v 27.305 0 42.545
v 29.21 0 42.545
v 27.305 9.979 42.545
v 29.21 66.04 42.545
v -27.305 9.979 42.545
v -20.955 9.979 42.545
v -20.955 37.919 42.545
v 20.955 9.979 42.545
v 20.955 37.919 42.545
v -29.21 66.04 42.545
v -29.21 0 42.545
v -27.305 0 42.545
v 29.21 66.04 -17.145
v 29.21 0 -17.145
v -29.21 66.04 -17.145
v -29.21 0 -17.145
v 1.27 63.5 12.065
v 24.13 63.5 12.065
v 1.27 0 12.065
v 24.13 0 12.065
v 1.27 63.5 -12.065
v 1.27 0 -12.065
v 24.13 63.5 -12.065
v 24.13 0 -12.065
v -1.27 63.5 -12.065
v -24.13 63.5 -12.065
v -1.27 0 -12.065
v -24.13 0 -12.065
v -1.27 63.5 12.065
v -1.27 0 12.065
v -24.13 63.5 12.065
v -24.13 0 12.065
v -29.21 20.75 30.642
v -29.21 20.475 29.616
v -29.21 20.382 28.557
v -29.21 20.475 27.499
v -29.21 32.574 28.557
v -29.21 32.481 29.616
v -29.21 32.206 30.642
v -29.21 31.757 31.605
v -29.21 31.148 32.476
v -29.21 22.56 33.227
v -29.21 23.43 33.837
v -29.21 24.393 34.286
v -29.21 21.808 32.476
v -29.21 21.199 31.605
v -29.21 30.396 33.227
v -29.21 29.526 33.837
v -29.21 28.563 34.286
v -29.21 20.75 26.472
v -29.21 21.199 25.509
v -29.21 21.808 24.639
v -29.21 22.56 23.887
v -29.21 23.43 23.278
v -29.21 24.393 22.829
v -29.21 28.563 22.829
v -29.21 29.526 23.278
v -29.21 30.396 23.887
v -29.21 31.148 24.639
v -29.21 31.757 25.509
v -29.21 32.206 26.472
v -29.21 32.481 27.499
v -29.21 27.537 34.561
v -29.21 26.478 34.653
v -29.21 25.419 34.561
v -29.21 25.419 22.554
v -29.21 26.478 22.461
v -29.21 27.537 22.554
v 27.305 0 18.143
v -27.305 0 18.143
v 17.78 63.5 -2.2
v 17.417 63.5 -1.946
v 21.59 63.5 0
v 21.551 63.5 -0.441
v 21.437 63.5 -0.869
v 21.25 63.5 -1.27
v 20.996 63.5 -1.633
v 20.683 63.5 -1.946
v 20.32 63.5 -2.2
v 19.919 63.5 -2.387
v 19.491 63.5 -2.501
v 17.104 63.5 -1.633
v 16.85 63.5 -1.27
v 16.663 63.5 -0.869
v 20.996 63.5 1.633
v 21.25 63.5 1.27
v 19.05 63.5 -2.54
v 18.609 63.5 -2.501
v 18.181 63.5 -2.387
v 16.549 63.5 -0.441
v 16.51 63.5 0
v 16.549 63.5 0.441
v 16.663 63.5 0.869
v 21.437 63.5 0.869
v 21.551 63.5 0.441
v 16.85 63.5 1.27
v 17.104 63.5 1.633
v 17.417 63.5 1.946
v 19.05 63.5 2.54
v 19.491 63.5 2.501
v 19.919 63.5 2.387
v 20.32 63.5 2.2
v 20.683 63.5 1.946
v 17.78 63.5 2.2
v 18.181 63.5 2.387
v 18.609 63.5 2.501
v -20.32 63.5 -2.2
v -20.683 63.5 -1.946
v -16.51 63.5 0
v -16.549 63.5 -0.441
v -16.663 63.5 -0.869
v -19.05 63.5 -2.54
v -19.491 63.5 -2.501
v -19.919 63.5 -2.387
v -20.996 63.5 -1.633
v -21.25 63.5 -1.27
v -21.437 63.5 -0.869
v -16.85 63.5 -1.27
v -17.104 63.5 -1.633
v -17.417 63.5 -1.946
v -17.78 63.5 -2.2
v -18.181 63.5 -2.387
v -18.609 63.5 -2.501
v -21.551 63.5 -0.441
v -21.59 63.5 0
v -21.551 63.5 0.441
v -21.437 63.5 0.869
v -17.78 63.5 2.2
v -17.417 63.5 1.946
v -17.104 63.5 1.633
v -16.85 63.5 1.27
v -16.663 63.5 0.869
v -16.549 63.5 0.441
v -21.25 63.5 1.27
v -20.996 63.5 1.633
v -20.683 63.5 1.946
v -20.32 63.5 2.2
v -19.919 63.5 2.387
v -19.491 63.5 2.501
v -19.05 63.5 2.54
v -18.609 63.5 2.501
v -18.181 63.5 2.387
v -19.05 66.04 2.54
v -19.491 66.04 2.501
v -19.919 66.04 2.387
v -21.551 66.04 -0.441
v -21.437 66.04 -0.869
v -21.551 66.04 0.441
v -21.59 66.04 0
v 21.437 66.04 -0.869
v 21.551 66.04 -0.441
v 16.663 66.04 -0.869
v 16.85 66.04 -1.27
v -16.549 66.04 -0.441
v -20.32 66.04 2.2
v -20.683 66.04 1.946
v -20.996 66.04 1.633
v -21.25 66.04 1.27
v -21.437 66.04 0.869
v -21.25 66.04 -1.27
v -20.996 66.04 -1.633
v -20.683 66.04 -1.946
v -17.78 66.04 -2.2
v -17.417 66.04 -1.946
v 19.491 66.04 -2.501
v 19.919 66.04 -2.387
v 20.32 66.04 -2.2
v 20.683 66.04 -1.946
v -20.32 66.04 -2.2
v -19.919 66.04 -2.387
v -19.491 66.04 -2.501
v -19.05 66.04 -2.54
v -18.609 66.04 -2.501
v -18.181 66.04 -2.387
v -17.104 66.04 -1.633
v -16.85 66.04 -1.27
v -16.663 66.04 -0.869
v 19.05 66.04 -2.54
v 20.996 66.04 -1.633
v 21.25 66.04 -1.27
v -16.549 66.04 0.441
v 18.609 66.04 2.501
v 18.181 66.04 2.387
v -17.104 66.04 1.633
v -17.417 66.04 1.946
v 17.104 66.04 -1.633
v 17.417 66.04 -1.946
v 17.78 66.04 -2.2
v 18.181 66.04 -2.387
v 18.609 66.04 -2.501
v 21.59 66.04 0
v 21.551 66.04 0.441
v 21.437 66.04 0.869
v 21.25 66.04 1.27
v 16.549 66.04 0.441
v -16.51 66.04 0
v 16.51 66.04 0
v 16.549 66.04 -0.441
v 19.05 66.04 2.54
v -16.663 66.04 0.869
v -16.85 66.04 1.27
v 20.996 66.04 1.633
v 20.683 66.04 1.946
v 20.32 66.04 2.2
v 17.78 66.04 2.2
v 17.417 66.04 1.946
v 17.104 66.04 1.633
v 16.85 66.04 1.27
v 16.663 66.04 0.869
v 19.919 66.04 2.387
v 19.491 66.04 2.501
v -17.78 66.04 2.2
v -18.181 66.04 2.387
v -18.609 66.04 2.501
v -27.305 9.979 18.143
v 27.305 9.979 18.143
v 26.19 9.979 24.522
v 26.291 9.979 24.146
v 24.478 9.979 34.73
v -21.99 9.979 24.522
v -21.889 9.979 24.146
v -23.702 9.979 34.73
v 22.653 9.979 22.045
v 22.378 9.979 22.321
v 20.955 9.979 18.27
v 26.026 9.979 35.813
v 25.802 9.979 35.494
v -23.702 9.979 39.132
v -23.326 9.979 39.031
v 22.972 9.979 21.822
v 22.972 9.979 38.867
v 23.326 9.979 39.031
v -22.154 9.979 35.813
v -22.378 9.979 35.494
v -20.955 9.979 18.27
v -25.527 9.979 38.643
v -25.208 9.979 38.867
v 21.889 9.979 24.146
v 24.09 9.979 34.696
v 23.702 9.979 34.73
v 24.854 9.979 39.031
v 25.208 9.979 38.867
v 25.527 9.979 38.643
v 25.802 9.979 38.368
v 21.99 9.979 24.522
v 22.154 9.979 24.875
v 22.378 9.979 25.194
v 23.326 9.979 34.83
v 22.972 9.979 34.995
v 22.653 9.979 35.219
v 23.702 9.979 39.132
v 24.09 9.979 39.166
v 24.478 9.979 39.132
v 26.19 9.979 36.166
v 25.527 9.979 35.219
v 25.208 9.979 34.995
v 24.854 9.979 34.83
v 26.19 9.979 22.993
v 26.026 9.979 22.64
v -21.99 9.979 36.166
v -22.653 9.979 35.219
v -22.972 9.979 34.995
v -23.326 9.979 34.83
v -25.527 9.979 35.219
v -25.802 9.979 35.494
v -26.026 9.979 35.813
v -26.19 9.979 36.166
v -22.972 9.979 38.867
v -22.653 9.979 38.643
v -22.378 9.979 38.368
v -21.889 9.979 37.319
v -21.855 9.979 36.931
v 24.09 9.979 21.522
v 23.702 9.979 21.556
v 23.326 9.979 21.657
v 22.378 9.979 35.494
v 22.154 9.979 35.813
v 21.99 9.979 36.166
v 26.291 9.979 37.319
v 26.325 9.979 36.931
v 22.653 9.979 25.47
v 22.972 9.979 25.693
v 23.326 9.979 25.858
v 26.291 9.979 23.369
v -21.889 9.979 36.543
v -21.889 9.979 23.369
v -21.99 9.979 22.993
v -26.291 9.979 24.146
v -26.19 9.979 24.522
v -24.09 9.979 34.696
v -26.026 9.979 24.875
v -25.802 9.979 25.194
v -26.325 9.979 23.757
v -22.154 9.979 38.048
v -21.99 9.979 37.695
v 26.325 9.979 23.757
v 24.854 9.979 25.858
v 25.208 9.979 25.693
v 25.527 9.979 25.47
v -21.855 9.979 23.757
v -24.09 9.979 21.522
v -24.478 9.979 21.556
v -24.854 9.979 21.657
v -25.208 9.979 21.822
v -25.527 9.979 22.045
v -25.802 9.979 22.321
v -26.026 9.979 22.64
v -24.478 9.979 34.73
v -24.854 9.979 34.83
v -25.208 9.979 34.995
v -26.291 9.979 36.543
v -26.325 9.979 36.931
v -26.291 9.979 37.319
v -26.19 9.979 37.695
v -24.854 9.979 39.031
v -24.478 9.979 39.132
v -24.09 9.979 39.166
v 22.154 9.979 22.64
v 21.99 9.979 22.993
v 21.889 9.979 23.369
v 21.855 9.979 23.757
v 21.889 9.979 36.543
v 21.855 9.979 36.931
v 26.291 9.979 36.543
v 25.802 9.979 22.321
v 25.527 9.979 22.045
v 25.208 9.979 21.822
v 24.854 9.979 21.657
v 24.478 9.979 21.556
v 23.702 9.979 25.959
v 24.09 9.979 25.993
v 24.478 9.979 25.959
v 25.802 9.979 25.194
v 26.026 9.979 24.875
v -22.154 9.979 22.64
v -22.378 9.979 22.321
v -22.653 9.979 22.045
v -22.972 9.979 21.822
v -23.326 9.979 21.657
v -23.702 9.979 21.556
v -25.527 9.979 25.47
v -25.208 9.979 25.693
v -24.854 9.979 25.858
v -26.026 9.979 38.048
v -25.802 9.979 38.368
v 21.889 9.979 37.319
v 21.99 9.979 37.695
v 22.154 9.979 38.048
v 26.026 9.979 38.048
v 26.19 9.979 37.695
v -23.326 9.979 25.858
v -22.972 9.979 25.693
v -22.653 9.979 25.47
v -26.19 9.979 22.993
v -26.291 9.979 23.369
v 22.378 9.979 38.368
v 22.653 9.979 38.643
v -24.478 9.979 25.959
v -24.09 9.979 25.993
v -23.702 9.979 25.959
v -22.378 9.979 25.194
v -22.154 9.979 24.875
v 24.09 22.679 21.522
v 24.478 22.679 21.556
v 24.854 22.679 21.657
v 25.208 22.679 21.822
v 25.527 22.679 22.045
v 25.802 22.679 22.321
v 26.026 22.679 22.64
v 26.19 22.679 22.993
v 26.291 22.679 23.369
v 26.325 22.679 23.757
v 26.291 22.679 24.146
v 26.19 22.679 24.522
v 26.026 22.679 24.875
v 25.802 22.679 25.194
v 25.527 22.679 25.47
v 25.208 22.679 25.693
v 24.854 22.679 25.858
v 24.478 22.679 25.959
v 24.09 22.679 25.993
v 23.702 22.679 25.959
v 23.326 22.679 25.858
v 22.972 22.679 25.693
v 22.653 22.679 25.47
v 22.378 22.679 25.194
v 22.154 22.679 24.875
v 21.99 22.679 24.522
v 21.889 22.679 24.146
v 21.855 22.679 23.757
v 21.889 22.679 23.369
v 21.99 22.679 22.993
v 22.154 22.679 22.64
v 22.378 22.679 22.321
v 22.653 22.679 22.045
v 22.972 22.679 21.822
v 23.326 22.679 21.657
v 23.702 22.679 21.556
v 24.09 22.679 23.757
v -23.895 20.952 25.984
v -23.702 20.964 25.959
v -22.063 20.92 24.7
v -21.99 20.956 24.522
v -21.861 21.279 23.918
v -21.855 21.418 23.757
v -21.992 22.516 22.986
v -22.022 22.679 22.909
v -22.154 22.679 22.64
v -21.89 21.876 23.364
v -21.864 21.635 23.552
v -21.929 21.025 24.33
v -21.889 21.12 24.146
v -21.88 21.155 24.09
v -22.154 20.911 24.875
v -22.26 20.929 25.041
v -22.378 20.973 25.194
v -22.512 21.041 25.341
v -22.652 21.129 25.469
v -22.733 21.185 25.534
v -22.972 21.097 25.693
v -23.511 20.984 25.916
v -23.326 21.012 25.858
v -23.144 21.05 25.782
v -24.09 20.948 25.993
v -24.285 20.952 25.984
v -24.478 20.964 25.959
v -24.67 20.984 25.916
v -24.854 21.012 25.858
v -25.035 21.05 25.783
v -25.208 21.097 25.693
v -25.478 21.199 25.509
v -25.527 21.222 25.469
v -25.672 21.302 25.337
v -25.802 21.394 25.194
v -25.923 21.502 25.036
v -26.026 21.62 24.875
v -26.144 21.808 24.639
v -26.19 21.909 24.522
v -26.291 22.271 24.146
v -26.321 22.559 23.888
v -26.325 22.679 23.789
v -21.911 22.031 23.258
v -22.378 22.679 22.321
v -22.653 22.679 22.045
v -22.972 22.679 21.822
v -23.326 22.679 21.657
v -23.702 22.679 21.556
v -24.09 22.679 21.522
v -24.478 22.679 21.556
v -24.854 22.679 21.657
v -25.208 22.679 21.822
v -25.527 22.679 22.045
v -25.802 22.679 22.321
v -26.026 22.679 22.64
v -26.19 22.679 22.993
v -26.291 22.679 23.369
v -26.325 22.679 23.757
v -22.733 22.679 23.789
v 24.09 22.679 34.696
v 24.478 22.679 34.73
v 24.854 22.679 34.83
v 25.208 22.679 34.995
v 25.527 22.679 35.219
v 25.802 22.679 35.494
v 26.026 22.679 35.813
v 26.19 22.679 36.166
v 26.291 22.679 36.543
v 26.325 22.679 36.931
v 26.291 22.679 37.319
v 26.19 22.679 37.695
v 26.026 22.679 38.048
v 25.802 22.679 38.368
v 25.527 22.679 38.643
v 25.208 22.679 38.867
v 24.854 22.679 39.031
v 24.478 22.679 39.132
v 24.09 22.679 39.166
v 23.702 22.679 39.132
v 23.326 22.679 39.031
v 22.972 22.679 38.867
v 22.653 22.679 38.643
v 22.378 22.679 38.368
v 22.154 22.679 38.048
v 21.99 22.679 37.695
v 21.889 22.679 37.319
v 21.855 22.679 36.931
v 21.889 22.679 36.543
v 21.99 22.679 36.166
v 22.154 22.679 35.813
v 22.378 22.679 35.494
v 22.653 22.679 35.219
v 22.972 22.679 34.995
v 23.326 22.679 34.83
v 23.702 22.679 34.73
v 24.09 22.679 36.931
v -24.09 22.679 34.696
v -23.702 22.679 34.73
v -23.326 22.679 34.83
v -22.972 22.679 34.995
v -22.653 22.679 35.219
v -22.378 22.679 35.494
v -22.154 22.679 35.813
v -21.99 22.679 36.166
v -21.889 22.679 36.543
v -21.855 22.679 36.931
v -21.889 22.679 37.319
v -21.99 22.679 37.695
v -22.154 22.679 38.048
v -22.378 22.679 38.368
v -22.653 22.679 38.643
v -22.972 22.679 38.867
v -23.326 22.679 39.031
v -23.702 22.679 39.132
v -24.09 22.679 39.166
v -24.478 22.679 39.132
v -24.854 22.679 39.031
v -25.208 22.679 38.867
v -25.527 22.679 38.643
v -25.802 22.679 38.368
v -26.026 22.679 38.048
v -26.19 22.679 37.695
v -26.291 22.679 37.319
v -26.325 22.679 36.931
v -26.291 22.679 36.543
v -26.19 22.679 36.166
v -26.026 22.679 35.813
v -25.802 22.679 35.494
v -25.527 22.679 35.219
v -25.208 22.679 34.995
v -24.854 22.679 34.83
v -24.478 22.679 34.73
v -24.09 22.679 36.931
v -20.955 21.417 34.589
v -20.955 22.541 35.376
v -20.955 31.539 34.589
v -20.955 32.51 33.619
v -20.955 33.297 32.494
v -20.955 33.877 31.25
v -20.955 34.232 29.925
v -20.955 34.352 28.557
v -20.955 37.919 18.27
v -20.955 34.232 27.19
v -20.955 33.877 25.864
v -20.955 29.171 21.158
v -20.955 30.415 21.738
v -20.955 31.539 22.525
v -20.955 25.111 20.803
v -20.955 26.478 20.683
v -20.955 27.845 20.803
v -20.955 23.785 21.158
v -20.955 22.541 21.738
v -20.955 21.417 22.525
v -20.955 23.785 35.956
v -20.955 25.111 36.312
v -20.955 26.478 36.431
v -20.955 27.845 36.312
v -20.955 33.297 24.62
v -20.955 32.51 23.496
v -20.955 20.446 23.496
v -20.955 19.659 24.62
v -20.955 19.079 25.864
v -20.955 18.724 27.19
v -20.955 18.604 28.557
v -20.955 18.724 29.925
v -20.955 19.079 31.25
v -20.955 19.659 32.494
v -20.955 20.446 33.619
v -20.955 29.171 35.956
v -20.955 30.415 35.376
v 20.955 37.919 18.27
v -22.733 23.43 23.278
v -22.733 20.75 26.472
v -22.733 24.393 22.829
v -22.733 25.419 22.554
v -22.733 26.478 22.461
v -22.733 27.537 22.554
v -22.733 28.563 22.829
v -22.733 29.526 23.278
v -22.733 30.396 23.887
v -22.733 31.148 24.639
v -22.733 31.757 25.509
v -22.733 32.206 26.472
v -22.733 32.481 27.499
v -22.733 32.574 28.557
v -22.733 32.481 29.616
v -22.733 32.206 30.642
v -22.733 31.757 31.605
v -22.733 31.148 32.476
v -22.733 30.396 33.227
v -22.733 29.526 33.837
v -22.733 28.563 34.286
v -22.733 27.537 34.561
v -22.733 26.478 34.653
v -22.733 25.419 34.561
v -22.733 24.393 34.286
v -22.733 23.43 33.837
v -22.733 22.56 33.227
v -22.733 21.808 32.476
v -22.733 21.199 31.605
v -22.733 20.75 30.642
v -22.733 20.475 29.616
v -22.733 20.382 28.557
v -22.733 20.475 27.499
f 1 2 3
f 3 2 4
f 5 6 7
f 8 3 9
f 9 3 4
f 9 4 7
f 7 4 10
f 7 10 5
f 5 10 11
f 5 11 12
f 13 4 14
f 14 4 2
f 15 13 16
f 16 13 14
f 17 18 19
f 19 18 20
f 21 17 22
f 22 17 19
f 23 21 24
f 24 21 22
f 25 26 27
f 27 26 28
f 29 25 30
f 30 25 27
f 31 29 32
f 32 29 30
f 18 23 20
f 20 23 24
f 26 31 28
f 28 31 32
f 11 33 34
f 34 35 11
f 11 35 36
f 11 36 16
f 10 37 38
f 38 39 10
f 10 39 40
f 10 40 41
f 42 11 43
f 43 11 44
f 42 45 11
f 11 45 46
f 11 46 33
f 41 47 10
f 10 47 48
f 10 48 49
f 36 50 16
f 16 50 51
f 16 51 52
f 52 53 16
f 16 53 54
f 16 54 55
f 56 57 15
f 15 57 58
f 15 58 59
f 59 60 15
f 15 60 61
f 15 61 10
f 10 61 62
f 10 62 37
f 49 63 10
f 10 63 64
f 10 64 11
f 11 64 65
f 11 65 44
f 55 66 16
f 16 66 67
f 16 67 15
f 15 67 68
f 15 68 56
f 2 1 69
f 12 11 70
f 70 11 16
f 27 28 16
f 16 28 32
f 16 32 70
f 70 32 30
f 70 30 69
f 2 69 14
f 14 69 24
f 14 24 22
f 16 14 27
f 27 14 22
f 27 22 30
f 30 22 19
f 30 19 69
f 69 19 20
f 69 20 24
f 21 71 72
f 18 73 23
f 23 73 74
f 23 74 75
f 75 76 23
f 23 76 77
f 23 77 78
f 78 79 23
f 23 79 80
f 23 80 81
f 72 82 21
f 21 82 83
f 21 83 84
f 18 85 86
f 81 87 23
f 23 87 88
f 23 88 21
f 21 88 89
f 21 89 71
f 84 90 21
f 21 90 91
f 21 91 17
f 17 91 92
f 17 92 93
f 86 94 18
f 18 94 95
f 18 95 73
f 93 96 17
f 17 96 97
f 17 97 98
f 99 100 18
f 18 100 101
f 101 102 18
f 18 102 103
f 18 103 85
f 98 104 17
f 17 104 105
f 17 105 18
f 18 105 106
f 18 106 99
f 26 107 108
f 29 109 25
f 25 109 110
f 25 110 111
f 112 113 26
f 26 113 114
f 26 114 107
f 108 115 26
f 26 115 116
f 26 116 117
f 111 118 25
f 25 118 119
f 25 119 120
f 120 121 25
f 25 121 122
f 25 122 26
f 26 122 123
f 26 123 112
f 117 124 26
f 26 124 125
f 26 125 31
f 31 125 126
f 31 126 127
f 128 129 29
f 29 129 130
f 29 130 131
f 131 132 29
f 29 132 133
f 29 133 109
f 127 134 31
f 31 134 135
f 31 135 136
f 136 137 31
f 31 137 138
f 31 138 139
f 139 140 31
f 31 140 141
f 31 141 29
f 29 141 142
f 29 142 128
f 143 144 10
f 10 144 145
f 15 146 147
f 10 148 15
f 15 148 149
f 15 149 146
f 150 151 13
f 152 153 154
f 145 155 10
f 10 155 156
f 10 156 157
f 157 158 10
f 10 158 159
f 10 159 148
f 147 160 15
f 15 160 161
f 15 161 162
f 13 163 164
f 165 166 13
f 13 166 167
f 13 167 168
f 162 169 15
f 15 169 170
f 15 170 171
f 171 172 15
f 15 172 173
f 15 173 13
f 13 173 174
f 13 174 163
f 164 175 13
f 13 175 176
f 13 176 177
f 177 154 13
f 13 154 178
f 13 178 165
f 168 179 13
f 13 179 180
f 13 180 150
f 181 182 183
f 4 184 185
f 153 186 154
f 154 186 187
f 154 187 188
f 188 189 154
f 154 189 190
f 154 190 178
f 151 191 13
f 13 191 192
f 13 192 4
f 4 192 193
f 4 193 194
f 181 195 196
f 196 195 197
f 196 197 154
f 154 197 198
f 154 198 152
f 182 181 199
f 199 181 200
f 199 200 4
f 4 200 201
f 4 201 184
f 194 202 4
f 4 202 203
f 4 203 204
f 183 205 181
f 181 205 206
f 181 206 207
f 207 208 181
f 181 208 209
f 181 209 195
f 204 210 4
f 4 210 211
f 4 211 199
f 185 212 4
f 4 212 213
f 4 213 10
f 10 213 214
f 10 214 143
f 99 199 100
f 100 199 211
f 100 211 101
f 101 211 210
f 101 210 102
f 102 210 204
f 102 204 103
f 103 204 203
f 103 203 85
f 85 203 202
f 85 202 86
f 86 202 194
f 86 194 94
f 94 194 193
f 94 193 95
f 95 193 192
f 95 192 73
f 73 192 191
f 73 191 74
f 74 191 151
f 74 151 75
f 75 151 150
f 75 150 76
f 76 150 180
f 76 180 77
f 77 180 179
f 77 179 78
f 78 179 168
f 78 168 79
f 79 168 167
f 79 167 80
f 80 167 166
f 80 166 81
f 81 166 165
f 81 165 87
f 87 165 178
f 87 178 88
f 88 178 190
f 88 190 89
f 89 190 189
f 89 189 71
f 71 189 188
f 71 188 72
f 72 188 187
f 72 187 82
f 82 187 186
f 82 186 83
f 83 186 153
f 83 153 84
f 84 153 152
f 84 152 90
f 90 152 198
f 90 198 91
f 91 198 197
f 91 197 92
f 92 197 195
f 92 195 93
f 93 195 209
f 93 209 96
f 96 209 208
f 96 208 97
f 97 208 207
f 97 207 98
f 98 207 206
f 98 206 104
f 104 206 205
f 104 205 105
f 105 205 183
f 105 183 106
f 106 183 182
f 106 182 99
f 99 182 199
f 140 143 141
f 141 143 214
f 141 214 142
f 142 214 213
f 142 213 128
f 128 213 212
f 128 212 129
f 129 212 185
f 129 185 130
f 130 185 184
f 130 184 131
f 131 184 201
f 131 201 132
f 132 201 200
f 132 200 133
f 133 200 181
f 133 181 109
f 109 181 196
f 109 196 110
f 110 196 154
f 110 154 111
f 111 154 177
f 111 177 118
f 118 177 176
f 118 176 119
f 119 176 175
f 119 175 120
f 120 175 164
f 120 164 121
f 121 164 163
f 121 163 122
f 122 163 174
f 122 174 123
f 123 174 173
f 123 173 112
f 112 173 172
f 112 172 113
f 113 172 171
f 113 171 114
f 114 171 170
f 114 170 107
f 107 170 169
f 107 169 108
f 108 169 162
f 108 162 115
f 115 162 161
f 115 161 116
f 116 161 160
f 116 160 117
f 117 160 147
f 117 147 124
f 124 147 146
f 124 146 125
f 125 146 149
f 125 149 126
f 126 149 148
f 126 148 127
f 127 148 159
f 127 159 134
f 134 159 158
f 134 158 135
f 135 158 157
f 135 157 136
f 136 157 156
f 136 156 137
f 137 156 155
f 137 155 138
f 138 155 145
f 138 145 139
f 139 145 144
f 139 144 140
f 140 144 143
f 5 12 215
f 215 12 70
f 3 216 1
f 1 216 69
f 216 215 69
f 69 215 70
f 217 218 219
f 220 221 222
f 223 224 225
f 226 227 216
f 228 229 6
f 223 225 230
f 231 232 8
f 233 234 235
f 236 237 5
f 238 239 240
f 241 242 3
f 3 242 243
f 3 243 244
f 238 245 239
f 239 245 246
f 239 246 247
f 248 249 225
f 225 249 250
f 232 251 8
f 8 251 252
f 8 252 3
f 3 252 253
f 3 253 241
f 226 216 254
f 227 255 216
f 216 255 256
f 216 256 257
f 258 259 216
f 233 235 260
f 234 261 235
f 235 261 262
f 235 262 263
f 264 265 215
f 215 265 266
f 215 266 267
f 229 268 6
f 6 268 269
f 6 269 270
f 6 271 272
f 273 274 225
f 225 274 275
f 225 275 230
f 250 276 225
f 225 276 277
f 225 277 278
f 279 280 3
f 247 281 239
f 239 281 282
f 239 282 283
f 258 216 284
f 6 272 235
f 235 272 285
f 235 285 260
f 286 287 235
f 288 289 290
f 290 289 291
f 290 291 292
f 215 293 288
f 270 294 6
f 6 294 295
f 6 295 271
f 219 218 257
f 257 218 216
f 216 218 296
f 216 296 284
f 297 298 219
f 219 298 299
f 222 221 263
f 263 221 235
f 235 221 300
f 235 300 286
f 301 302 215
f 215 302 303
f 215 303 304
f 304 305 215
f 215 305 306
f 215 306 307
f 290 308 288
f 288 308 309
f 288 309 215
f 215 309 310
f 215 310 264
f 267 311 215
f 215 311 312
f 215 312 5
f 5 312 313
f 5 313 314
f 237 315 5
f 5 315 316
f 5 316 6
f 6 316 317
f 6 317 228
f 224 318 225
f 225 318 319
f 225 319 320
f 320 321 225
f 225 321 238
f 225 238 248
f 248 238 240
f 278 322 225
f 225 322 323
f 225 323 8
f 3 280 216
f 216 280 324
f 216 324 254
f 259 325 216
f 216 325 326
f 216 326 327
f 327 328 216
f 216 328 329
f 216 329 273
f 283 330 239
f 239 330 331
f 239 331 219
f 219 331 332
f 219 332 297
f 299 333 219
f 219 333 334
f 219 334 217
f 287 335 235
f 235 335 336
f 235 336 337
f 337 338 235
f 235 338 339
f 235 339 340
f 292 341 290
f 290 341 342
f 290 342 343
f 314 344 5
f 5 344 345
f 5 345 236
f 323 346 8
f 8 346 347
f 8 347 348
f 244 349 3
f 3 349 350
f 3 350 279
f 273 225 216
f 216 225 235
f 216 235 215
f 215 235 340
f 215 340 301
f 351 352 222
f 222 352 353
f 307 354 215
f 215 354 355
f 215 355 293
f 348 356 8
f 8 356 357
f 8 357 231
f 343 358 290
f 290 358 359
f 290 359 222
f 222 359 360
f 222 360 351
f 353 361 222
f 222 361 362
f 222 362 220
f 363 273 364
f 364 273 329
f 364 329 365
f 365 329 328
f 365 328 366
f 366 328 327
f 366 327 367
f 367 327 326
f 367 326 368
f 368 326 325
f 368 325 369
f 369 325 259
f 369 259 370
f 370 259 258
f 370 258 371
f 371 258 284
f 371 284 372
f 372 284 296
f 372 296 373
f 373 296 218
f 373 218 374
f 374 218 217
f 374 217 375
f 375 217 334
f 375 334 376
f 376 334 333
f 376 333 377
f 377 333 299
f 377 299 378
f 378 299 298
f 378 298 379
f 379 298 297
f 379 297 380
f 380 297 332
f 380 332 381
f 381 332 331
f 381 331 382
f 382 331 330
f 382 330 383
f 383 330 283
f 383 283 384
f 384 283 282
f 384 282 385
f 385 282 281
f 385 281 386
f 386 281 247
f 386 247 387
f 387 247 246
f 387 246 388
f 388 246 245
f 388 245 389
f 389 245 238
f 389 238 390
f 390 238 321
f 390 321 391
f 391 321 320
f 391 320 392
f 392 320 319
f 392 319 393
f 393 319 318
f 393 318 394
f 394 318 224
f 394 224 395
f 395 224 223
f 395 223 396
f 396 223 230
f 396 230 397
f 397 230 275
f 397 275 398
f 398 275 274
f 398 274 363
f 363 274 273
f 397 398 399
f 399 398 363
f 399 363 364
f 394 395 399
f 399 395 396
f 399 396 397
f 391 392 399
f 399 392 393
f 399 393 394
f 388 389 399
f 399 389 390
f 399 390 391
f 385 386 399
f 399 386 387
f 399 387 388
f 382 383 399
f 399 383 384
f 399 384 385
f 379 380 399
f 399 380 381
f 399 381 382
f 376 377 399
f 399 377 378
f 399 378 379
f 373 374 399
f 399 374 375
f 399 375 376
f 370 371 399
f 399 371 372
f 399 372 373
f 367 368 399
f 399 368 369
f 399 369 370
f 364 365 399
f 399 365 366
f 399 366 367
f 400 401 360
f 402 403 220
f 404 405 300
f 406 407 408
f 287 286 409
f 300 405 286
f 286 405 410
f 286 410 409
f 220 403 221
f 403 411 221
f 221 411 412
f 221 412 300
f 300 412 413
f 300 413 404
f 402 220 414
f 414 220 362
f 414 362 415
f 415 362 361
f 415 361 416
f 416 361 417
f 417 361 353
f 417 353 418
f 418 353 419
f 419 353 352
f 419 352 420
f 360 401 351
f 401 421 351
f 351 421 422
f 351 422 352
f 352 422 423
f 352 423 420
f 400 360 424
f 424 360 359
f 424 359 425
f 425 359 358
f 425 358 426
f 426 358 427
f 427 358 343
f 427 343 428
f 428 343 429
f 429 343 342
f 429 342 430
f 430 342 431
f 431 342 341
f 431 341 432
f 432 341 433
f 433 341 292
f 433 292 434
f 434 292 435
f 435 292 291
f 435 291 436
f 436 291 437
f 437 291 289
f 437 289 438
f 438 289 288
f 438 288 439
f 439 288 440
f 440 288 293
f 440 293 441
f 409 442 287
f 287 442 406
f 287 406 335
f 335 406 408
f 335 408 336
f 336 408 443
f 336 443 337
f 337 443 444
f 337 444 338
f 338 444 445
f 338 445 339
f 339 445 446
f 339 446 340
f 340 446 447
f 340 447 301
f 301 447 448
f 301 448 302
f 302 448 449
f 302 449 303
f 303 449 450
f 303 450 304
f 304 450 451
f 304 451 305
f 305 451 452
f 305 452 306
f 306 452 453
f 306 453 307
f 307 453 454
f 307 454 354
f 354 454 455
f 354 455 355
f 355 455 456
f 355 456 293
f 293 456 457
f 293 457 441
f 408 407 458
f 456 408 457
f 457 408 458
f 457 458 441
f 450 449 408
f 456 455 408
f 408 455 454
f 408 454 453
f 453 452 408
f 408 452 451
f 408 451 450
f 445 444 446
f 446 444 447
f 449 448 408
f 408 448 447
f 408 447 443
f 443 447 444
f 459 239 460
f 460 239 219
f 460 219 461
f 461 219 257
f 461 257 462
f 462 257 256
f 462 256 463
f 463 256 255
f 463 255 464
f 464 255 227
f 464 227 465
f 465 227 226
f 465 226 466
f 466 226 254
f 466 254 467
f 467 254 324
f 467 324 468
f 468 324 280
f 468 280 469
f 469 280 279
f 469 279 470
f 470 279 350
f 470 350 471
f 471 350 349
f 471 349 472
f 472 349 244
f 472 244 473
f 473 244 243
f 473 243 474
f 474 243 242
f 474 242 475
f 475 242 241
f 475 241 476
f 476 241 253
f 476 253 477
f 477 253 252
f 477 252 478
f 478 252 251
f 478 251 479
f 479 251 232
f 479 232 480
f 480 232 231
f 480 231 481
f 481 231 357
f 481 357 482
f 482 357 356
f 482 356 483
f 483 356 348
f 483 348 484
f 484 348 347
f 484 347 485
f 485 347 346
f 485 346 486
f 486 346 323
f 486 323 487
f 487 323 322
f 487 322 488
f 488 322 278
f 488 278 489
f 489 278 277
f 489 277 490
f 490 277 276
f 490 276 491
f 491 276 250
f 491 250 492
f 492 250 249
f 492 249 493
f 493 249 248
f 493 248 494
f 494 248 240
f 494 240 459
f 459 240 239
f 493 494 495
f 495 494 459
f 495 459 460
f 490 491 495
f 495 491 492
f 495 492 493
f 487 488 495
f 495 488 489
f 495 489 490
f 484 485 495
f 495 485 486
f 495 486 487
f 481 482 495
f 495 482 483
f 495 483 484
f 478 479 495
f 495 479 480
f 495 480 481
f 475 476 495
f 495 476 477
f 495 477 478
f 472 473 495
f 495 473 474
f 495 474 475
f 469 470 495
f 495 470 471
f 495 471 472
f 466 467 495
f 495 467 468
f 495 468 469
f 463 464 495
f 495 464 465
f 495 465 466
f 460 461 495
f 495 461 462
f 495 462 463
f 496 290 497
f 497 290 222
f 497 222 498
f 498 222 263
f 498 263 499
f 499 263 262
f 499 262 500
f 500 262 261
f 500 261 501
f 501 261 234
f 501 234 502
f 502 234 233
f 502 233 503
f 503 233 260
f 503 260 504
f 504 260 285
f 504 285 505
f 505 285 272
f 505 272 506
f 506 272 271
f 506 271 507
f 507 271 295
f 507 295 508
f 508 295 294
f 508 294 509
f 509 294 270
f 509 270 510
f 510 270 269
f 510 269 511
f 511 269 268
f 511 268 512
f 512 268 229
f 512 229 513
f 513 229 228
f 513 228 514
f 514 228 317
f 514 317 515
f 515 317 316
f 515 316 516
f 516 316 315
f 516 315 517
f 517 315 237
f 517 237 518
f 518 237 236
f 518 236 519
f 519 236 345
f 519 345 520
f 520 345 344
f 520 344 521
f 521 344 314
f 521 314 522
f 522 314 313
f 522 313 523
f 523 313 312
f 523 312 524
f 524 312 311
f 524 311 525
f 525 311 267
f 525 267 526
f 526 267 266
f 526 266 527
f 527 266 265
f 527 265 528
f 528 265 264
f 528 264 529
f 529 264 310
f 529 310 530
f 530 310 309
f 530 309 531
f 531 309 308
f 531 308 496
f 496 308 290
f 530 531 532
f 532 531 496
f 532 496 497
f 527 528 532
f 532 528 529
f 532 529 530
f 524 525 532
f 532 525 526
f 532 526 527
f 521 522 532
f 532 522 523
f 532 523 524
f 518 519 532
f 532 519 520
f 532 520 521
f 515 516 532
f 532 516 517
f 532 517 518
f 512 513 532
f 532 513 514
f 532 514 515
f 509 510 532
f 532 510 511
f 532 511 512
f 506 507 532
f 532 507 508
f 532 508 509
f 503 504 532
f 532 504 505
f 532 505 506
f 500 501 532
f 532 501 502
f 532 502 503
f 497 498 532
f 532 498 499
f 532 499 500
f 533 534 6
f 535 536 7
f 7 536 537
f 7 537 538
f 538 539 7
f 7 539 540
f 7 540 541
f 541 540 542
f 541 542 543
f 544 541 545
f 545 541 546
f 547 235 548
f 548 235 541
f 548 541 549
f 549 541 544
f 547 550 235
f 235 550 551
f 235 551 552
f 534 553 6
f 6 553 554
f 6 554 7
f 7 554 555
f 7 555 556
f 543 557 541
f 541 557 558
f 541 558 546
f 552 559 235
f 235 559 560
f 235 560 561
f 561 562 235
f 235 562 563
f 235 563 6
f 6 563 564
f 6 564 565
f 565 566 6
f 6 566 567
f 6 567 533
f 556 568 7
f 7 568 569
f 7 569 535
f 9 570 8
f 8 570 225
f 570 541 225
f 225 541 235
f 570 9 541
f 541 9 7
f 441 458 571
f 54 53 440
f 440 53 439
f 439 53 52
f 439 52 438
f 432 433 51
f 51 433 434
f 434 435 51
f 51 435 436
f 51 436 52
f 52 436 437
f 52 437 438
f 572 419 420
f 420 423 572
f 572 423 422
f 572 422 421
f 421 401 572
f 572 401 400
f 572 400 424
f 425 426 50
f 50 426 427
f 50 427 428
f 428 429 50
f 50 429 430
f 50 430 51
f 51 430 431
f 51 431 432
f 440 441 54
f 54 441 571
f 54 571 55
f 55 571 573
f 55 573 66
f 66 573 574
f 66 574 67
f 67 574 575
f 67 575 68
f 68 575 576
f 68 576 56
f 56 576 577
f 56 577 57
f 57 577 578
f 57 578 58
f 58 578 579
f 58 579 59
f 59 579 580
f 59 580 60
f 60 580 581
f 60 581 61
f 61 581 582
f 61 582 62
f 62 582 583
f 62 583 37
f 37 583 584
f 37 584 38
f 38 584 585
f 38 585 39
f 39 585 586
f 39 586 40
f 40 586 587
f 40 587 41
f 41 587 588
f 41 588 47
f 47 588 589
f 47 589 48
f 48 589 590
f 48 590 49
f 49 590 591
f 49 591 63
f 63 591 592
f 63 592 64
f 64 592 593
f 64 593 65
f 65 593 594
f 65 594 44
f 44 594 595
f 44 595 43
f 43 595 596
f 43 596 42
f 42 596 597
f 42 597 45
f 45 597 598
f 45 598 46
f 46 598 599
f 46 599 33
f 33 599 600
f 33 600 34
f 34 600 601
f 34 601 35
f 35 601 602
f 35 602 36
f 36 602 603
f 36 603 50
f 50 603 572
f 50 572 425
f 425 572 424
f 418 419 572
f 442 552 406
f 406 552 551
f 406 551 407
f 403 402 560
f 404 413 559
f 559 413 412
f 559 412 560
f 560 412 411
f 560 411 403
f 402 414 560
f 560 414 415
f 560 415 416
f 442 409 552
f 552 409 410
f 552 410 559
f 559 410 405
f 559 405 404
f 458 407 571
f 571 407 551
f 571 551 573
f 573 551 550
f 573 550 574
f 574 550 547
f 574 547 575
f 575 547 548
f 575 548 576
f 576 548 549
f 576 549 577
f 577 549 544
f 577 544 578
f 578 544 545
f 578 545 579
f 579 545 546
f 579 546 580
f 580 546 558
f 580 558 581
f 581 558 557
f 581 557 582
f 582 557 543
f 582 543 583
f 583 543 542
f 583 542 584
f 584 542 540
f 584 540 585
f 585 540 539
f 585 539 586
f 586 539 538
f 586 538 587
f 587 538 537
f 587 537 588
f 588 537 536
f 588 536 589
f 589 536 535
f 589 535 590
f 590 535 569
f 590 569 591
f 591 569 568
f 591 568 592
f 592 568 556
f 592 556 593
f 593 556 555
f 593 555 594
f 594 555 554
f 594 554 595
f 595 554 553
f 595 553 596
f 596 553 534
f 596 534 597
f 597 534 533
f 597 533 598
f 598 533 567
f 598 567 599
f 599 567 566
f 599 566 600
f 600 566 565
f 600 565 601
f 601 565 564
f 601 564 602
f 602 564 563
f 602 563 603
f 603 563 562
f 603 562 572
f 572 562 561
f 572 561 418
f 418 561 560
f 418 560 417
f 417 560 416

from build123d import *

# Parameters (mm, degrees)
SKETCH1_W           = 58.42
SKETCH1_H           = 34.29
SKETCH1_W_2         = 22.86
SKETCH1_H_2         = 24.13
SKETCH1_H_3         = 25.4
BOSS_EXTRUDE1_DEPTH = 63.5
SKETCH2_W           = 58.42
SKETCH2_H           = 59.69
BOSS_EXTRUDE2_DEPTH = 2.54
SKETCH3_R           = 2.54
CUT_EXTRUDE1_DEPTH  = 84.81278378
SKETCH6_W           = 54.61
SKETCH6_H           = 20.828
CUT_EXTRUDE3_DEPTH  = 9.979406
SKETCH7_R           = 2.2352
CUT_EXTRUDE4_DEPTH  = 12.7
SKETCH9_W           = 41.91
SKETCH9_H           = 20.574
CUT_EXTRUDE5_DEPTH  = 27.94
SKETCH10_R          = 6.096
CUT_EXTRUDE6_DEPTH  = 94.208829249
CUT_EXTRUDE7_DEPTH  = 92.374500249
CHAMFER1_SIZE       = 1.778


with BuildPart() as part:
    # Sketch1 → Boss-Extrude1 (new body)
    # profile 1 of 2: a face of its own
    with BuildSketch(Plane(origin=(0, 0, 0), x_dir=(1, 0, 0), z_dir=(0, 1, 0))):
        Rectangle(SKETCH1_W, SKETCH1_H)
        with Locations((-12.7, 0)):
            Rectangle(SKETCH1_W_2, SKETCH1_H_2, mode=Mode.SUBTRACT)
        with Locations((12.7, 0)):
            Rectangle(SKETCH1_W_2, SKETCH1_H_2, mode=Mode.SUBTRACT)
    # profile 2 of 2: a face of its own
    with BuildSketch(Plane(origin=(0, 0, 0), x_dir=(1, 0, 0), z_dir=(0, 1, 0))):
        with Locations((0, -29.845)):
            Rectangle(SKETCH1_W, SKETCH1_H_3)
    extrude(amount=BOSS_EXTRUDE1_DEPTH)

    # Sketch2 → Boss-Extrude2 (add)
    with BuildSketch(Plane(origin=(0, 63.5, 0), x_dir=(1, 0, 0), z_dir=(0, 1, 0))):
        with Locations((0, -12.7)):
            Rectangle(SKETCH2_W, SKETCH2_H)
    extrude(amount=BOSS_EXTRUDE2_DEPTH)

    # Sketch3 → Cut-Extrude1 (cut, through all)
    with BuildSketch(Plane(origin=(0, 66.04, 0), x_dir=(1, 0, 0), z_dir=(0, 1, 0))):
        with Locations(Location((-19.05, 0, 0), (0, 0, 270))):
            Circle(SKETCH3_R)
        with Locations(Location((19.05, 0, 0), (0, 0, 270))):
            Circle(SKETCH3_R)
    extrude(amount=-CUT_EXTRUDE1_DEPTH, mode=Mode.SUBTRACT)

    # Sketch6 → Cut-Extrude3 (cut)
    with BuildSketch(Plane.XZ):
        with Locations((0, 28.557227446)):
            Rectangle(SKETCH6_W, SKETCH6_H)
    extrude(amount=-CUT_EXTRUDE3_DEPTH, mode=Mode.SUBTRACT)

    # Sketch7 → Cut-Extrude4 (cut)
    with BuildSketch(Plane.XZ.offset(-9.979406)):
        with Locations(Location((24.09, 36.930859788, 0), (0, 0, 270))):
            Circle(SKETCH7_R)
        with Locations(Location((24.09, 23.757367658, 0), (0, 0, 270))):
            Circle(SKETCH7_R)
        with Locations(Location((-24.09, 23.757367658, 0), (0, 0, 270))):
            Circle(SKETCH7_R)
        with Locations(Location((-24.09, 36.930859788, 0), (0, 0, 270))):
            Circle(SKETCH7_R)
    extrude(amount=-CUT_EXTRUDE4_DEPTH, mode=Mode.SUBTRACT)

    # Sketch9 → Cut-Extrude5 (cut)
    with BuildSketch(Plane.XZ.offset(-9.979406)):
        with Locations((0, 28.557227446)):
            Rectangle(SKETCH9_W, SKETCH9_H)
    extrude(amount=-CUT_EXTRUDE5_DEPTH, mode=Mode.SUBTRACT)

    # Sketch10 → Cut-Extrude6 (cut, through all)
    with BuildSketch(Plane(origin=(-20.955, 0, 0), x_dir=(0, 0, -1), z_dir=(1, 0, 0))):
        with Locations((-28.557227446, 26.477976)):
            Circle(SKETCH10_R)
    extrude(amount=-CUT_EXTRUDE6_DEPTH, mode=Mode.SUBTRACT)

    # Sketch11 → Cut-Extrude7 (cut, through all)
    with BuildSketch(Plane(origin=(0, 0, 38.844227446), x_dir=(-1, 0, 0), z_dir=(0, 0, -1))):
        Polygon((-27.305, 0), (27.305, 0), (27.305, 9.979406), (25.002698669, 9.979406), (23.177301331, 9.979406), (20.955, 9.979406), (20.955, 37.919406), (-20.955, 37.919406), (-20.955, 9.979406), (-23.177301331, 9.979406), (-25.002698669, 9.979406), (-27.305, 9.979406), align=None)
    extrude(amount=-CUT_EXTRUDE7_DEPTH, mode=Mode.SUBTRACT)

    # Chamfer1
    # the kernel refuses this chamfer: 1.778 mm, written as the material it takes off along each edge
    with BuildSketch(Plane(origin=(-20.955, 26.477976, 28.557227446), x_dir=(0, 0, -1), z_dir=(0, -1, 0))) as chamfer1_piece_1:
        Polygon((6.096, -CHAMFER1_SIZE), (6.096 + CHAMFER1_SIZE, 0), (6.096, 0), align=None)
    revolve(axis=Axis((-20.955, 26.477976, 28.557227446), (1, 0, 0)), mode=Mode.SUBTRACT)


solid = part.part
